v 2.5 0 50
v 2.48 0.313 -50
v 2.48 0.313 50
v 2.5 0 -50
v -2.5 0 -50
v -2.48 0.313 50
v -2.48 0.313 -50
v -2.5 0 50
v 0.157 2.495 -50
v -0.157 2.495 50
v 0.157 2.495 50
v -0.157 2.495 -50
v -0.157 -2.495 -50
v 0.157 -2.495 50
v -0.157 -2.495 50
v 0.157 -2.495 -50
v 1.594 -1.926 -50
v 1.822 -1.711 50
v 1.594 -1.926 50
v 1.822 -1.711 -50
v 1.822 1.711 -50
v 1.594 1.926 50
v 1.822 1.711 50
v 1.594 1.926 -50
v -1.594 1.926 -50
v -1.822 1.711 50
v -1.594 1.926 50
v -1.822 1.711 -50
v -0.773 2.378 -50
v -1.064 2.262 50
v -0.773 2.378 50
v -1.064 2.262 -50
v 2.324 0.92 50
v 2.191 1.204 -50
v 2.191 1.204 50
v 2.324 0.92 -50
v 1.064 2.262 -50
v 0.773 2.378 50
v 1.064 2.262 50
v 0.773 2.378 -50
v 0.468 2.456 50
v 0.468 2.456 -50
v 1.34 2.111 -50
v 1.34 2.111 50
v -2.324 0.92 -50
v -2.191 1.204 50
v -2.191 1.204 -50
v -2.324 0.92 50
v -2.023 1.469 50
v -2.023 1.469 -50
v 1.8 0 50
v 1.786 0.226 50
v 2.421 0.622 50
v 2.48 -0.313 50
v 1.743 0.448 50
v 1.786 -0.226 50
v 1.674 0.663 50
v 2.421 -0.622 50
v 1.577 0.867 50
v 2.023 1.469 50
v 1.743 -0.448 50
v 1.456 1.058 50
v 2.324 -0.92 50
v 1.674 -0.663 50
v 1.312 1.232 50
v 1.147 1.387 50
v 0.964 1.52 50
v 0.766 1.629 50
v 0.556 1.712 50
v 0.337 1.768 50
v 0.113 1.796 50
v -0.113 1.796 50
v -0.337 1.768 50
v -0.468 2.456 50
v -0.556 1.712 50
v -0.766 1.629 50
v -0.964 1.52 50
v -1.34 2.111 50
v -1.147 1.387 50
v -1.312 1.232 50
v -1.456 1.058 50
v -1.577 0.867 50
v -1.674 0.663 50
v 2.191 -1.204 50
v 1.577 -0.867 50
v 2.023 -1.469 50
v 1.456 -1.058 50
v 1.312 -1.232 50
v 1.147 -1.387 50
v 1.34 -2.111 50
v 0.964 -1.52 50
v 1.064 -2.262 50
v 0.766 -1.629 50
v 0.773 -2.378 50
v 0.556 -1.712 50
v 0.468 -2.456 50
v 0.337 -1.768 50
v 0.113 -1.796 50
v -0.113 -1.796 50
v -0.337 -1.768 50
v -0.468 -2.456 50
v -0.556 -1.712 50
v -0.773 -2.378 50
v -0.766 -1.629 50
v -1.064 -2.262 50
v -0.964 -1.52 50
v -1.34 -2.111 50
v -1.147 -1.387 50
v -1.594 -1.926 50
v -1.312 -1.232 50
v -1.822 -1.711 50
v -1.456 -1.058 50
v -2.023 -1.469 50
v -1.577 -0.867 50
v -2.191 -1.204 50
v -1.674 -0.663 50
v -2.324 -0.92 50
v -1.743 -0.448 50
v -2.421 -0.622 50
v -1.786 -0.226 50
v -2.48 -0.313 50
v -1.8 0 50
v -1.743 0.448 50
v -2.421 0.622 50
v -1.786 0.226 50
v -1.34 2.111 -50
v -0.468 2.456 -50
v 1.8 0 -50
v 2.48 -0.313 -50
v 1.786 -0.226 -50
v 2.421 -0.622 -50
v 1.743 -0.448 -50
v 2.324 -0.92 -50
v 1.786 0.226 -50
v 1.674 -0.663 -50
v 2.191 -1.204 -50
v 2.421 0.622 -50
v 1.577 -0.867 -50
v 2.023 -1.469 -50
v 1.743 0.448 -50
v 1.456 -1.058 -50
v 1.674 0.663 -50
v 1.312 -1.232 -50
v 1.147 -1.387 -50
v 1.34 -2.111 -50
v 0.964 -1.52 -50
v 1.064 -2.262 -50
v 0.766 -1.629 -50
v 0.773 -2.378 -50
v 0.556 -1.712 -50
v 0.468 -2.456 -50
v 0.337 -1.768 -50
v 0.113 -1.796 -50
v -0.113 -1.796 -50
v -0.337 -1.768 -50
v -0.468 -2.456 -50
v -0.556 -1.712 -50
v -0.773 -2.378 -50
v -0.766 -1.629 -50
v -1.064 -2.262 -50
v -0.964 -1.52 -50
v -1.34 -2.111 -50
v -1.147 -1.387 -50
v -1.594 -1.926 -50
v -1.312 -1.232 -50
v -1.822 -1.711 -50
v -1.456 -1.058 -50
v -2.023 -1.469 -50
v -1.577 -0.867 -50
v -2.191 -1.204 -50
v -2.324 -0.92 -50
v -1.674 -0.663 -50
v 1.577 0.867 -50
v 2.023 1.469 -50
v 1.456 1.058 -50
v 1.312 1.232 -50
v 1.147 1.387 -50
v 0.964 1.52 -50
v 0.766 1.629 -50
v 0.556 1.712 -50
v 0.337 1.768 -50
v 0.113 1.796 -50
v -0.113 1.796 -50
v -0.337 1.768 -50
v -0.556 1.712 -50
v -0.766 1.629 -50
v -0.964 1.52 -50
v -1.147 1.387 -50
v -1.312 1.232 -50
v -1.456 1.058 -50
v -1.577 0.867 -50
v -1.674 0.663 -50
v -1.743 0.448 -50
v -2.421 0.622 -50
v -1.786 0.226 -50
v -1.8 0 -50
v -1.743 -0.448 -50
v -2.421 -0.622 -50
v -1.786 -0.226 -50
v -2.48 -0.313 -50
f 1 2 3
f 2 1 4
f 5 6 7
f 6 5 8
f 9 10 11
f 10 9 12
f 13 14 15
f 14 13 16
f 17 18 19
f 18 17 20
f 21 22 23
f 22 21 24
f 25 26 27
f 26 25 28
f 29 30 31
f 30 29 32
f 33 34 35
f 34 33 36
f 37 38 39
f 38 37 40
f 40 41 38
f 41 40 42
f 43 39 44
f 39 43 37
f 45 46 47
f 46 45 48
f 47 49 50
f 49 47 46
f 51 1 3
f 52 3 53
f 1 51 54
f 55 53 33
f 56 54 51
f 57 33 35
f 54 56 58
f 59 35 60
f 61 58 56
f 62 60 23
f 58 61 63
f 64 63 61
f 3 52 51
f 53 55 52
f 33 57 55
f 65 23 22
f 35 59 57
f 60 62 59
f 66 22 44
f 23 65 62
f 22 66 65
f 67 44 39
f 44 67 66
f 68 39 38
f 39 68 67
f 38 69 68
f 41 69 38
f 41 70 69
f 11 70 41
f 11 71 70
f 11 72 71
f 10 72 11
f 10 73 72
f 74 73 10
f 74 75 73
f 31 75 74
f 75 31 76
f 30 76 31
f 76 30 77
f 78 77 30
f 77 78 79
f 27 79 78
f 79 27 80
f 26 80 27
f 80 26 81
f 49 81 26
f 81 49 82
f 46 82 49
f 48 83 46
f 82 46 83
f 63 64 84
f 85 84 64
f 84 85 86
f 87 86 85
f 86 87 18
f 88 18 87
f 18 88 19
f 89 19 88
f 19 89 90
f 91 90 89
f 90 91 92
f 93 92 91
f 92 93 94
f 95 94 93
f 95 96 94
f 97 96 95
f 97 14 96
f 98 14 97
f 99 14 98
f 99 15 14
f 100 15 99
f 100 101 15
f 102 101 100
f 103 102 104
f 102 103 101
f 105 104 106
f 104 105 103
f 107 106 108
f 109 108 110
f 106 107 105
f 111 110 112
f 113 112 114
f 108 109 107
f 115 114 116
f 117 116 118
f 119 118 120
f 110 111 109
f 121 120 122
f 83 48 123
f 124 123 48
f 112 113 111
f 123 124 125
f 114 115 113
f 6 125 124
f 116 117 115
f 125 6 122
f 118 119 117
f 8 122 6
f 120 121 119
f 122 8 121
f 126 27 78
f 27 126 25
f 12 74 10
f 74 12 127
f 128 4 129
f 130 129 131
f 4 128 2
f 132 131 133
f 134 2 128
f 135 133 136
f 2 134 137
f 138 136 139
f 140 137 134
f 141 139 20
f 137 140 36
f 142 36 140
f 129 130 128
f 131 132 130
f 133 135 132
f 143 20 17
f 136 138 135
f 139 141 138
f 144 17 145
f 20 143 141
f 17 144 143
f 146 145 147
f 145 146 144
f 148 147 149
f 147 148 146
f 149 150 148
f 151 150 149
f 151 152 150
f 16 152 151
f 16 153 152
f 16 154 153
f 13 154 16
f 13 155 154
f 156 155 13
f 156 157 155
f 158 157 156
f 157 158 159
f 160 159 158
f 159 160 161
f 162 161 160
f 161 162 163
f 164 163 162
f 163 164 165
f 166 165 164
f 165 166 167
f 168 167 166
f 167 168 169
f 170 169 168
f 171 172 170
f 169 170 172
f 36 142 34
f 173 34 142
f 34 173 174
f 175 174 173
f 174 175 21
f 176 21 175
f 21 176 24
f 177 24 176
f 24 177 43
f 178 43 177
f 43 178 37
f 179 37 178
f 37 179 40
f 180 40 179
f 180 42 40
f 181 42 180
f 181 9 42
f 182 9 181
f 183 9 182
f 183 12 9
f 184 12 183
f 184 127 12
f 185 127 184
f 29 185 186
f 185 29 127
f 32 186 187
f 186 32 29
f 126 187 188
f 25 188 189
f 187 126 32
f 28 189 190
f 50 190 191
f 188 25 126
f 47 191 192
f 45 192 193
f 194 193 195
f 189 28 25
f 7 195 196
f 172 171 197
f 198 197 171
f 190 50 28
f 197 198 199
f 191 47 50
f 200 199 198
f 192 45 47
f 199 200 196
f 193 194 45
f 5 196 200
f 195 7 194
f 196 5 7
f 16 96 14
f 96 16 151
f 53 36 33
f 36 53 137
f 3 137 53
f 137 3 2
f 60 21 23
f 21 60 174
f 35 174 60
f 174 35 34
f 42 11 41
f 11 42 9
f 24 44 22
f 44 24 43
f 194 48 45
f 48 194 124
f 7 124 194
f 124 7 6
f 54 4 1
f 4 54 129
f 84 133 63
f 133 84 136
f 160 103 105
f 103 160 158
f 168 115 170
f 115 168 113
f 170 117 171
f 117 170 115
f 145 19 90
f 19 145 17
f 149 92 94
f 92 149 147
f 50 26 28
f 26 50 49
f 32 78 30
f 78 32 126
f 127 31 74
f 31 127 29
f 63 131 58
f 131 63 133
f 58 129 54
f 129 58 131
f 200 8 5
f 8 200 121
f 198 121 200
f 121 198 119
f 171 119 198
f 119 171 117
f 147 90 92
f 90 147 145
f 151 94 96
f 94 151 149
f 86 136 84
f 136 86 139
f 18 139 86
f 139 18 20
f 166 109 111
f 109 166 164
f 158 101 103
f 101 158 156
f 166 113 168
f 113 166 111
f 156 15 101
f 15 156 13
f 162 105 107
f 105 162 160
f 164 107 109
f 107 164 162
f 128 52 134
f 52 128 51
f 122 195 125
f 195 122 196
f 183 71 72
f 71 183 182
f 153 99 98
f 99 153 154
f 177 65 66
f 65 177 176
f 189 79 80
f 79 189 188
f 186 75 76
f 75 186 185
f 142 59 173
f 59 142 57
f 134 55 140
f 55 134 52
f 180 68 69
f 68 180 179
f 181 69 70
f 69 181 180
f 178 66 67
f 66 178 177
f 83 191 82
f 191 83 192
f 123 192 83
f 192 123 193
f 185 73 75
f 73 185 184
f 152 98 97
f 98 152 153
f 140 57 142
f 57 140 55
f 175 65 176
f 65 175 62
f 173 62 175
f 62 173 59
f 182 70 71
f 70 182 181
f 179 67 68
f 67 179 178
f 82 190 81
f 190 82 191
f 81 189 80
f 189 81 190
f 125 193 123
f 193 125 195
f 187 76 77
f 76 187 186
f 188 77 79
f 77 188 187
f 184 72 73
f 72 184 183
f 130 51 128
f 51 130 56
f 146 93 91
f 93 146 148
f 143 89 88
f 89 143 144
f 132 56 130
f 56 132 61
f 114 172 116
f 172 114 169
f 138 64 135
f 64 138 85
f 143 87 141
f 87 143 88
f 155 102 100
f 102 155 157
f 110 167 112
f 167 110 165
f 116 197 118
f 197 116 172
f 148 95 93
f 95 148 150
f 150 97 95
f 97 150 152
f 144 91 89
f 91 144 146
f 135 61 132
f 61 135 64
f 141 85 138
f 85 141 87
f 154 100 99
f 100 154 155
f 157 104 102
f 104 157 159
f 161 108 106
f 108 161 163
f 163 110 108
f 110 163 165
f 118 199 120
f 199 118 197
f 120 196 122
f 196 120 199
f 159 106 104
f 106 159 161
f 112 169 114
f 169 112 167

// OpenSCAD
$fn = 50;


difference() {
	union() {
		translate(v = [0, 0, -50.0000000000]) {
			cylinder(h = 100, r = 2.5000000000);
		}
	}
	union() {
		translate(v = [0, 0, -100.0000000000]) {
			cylinder(h = 200, r = 1.8000000000);
		}
	}
}
